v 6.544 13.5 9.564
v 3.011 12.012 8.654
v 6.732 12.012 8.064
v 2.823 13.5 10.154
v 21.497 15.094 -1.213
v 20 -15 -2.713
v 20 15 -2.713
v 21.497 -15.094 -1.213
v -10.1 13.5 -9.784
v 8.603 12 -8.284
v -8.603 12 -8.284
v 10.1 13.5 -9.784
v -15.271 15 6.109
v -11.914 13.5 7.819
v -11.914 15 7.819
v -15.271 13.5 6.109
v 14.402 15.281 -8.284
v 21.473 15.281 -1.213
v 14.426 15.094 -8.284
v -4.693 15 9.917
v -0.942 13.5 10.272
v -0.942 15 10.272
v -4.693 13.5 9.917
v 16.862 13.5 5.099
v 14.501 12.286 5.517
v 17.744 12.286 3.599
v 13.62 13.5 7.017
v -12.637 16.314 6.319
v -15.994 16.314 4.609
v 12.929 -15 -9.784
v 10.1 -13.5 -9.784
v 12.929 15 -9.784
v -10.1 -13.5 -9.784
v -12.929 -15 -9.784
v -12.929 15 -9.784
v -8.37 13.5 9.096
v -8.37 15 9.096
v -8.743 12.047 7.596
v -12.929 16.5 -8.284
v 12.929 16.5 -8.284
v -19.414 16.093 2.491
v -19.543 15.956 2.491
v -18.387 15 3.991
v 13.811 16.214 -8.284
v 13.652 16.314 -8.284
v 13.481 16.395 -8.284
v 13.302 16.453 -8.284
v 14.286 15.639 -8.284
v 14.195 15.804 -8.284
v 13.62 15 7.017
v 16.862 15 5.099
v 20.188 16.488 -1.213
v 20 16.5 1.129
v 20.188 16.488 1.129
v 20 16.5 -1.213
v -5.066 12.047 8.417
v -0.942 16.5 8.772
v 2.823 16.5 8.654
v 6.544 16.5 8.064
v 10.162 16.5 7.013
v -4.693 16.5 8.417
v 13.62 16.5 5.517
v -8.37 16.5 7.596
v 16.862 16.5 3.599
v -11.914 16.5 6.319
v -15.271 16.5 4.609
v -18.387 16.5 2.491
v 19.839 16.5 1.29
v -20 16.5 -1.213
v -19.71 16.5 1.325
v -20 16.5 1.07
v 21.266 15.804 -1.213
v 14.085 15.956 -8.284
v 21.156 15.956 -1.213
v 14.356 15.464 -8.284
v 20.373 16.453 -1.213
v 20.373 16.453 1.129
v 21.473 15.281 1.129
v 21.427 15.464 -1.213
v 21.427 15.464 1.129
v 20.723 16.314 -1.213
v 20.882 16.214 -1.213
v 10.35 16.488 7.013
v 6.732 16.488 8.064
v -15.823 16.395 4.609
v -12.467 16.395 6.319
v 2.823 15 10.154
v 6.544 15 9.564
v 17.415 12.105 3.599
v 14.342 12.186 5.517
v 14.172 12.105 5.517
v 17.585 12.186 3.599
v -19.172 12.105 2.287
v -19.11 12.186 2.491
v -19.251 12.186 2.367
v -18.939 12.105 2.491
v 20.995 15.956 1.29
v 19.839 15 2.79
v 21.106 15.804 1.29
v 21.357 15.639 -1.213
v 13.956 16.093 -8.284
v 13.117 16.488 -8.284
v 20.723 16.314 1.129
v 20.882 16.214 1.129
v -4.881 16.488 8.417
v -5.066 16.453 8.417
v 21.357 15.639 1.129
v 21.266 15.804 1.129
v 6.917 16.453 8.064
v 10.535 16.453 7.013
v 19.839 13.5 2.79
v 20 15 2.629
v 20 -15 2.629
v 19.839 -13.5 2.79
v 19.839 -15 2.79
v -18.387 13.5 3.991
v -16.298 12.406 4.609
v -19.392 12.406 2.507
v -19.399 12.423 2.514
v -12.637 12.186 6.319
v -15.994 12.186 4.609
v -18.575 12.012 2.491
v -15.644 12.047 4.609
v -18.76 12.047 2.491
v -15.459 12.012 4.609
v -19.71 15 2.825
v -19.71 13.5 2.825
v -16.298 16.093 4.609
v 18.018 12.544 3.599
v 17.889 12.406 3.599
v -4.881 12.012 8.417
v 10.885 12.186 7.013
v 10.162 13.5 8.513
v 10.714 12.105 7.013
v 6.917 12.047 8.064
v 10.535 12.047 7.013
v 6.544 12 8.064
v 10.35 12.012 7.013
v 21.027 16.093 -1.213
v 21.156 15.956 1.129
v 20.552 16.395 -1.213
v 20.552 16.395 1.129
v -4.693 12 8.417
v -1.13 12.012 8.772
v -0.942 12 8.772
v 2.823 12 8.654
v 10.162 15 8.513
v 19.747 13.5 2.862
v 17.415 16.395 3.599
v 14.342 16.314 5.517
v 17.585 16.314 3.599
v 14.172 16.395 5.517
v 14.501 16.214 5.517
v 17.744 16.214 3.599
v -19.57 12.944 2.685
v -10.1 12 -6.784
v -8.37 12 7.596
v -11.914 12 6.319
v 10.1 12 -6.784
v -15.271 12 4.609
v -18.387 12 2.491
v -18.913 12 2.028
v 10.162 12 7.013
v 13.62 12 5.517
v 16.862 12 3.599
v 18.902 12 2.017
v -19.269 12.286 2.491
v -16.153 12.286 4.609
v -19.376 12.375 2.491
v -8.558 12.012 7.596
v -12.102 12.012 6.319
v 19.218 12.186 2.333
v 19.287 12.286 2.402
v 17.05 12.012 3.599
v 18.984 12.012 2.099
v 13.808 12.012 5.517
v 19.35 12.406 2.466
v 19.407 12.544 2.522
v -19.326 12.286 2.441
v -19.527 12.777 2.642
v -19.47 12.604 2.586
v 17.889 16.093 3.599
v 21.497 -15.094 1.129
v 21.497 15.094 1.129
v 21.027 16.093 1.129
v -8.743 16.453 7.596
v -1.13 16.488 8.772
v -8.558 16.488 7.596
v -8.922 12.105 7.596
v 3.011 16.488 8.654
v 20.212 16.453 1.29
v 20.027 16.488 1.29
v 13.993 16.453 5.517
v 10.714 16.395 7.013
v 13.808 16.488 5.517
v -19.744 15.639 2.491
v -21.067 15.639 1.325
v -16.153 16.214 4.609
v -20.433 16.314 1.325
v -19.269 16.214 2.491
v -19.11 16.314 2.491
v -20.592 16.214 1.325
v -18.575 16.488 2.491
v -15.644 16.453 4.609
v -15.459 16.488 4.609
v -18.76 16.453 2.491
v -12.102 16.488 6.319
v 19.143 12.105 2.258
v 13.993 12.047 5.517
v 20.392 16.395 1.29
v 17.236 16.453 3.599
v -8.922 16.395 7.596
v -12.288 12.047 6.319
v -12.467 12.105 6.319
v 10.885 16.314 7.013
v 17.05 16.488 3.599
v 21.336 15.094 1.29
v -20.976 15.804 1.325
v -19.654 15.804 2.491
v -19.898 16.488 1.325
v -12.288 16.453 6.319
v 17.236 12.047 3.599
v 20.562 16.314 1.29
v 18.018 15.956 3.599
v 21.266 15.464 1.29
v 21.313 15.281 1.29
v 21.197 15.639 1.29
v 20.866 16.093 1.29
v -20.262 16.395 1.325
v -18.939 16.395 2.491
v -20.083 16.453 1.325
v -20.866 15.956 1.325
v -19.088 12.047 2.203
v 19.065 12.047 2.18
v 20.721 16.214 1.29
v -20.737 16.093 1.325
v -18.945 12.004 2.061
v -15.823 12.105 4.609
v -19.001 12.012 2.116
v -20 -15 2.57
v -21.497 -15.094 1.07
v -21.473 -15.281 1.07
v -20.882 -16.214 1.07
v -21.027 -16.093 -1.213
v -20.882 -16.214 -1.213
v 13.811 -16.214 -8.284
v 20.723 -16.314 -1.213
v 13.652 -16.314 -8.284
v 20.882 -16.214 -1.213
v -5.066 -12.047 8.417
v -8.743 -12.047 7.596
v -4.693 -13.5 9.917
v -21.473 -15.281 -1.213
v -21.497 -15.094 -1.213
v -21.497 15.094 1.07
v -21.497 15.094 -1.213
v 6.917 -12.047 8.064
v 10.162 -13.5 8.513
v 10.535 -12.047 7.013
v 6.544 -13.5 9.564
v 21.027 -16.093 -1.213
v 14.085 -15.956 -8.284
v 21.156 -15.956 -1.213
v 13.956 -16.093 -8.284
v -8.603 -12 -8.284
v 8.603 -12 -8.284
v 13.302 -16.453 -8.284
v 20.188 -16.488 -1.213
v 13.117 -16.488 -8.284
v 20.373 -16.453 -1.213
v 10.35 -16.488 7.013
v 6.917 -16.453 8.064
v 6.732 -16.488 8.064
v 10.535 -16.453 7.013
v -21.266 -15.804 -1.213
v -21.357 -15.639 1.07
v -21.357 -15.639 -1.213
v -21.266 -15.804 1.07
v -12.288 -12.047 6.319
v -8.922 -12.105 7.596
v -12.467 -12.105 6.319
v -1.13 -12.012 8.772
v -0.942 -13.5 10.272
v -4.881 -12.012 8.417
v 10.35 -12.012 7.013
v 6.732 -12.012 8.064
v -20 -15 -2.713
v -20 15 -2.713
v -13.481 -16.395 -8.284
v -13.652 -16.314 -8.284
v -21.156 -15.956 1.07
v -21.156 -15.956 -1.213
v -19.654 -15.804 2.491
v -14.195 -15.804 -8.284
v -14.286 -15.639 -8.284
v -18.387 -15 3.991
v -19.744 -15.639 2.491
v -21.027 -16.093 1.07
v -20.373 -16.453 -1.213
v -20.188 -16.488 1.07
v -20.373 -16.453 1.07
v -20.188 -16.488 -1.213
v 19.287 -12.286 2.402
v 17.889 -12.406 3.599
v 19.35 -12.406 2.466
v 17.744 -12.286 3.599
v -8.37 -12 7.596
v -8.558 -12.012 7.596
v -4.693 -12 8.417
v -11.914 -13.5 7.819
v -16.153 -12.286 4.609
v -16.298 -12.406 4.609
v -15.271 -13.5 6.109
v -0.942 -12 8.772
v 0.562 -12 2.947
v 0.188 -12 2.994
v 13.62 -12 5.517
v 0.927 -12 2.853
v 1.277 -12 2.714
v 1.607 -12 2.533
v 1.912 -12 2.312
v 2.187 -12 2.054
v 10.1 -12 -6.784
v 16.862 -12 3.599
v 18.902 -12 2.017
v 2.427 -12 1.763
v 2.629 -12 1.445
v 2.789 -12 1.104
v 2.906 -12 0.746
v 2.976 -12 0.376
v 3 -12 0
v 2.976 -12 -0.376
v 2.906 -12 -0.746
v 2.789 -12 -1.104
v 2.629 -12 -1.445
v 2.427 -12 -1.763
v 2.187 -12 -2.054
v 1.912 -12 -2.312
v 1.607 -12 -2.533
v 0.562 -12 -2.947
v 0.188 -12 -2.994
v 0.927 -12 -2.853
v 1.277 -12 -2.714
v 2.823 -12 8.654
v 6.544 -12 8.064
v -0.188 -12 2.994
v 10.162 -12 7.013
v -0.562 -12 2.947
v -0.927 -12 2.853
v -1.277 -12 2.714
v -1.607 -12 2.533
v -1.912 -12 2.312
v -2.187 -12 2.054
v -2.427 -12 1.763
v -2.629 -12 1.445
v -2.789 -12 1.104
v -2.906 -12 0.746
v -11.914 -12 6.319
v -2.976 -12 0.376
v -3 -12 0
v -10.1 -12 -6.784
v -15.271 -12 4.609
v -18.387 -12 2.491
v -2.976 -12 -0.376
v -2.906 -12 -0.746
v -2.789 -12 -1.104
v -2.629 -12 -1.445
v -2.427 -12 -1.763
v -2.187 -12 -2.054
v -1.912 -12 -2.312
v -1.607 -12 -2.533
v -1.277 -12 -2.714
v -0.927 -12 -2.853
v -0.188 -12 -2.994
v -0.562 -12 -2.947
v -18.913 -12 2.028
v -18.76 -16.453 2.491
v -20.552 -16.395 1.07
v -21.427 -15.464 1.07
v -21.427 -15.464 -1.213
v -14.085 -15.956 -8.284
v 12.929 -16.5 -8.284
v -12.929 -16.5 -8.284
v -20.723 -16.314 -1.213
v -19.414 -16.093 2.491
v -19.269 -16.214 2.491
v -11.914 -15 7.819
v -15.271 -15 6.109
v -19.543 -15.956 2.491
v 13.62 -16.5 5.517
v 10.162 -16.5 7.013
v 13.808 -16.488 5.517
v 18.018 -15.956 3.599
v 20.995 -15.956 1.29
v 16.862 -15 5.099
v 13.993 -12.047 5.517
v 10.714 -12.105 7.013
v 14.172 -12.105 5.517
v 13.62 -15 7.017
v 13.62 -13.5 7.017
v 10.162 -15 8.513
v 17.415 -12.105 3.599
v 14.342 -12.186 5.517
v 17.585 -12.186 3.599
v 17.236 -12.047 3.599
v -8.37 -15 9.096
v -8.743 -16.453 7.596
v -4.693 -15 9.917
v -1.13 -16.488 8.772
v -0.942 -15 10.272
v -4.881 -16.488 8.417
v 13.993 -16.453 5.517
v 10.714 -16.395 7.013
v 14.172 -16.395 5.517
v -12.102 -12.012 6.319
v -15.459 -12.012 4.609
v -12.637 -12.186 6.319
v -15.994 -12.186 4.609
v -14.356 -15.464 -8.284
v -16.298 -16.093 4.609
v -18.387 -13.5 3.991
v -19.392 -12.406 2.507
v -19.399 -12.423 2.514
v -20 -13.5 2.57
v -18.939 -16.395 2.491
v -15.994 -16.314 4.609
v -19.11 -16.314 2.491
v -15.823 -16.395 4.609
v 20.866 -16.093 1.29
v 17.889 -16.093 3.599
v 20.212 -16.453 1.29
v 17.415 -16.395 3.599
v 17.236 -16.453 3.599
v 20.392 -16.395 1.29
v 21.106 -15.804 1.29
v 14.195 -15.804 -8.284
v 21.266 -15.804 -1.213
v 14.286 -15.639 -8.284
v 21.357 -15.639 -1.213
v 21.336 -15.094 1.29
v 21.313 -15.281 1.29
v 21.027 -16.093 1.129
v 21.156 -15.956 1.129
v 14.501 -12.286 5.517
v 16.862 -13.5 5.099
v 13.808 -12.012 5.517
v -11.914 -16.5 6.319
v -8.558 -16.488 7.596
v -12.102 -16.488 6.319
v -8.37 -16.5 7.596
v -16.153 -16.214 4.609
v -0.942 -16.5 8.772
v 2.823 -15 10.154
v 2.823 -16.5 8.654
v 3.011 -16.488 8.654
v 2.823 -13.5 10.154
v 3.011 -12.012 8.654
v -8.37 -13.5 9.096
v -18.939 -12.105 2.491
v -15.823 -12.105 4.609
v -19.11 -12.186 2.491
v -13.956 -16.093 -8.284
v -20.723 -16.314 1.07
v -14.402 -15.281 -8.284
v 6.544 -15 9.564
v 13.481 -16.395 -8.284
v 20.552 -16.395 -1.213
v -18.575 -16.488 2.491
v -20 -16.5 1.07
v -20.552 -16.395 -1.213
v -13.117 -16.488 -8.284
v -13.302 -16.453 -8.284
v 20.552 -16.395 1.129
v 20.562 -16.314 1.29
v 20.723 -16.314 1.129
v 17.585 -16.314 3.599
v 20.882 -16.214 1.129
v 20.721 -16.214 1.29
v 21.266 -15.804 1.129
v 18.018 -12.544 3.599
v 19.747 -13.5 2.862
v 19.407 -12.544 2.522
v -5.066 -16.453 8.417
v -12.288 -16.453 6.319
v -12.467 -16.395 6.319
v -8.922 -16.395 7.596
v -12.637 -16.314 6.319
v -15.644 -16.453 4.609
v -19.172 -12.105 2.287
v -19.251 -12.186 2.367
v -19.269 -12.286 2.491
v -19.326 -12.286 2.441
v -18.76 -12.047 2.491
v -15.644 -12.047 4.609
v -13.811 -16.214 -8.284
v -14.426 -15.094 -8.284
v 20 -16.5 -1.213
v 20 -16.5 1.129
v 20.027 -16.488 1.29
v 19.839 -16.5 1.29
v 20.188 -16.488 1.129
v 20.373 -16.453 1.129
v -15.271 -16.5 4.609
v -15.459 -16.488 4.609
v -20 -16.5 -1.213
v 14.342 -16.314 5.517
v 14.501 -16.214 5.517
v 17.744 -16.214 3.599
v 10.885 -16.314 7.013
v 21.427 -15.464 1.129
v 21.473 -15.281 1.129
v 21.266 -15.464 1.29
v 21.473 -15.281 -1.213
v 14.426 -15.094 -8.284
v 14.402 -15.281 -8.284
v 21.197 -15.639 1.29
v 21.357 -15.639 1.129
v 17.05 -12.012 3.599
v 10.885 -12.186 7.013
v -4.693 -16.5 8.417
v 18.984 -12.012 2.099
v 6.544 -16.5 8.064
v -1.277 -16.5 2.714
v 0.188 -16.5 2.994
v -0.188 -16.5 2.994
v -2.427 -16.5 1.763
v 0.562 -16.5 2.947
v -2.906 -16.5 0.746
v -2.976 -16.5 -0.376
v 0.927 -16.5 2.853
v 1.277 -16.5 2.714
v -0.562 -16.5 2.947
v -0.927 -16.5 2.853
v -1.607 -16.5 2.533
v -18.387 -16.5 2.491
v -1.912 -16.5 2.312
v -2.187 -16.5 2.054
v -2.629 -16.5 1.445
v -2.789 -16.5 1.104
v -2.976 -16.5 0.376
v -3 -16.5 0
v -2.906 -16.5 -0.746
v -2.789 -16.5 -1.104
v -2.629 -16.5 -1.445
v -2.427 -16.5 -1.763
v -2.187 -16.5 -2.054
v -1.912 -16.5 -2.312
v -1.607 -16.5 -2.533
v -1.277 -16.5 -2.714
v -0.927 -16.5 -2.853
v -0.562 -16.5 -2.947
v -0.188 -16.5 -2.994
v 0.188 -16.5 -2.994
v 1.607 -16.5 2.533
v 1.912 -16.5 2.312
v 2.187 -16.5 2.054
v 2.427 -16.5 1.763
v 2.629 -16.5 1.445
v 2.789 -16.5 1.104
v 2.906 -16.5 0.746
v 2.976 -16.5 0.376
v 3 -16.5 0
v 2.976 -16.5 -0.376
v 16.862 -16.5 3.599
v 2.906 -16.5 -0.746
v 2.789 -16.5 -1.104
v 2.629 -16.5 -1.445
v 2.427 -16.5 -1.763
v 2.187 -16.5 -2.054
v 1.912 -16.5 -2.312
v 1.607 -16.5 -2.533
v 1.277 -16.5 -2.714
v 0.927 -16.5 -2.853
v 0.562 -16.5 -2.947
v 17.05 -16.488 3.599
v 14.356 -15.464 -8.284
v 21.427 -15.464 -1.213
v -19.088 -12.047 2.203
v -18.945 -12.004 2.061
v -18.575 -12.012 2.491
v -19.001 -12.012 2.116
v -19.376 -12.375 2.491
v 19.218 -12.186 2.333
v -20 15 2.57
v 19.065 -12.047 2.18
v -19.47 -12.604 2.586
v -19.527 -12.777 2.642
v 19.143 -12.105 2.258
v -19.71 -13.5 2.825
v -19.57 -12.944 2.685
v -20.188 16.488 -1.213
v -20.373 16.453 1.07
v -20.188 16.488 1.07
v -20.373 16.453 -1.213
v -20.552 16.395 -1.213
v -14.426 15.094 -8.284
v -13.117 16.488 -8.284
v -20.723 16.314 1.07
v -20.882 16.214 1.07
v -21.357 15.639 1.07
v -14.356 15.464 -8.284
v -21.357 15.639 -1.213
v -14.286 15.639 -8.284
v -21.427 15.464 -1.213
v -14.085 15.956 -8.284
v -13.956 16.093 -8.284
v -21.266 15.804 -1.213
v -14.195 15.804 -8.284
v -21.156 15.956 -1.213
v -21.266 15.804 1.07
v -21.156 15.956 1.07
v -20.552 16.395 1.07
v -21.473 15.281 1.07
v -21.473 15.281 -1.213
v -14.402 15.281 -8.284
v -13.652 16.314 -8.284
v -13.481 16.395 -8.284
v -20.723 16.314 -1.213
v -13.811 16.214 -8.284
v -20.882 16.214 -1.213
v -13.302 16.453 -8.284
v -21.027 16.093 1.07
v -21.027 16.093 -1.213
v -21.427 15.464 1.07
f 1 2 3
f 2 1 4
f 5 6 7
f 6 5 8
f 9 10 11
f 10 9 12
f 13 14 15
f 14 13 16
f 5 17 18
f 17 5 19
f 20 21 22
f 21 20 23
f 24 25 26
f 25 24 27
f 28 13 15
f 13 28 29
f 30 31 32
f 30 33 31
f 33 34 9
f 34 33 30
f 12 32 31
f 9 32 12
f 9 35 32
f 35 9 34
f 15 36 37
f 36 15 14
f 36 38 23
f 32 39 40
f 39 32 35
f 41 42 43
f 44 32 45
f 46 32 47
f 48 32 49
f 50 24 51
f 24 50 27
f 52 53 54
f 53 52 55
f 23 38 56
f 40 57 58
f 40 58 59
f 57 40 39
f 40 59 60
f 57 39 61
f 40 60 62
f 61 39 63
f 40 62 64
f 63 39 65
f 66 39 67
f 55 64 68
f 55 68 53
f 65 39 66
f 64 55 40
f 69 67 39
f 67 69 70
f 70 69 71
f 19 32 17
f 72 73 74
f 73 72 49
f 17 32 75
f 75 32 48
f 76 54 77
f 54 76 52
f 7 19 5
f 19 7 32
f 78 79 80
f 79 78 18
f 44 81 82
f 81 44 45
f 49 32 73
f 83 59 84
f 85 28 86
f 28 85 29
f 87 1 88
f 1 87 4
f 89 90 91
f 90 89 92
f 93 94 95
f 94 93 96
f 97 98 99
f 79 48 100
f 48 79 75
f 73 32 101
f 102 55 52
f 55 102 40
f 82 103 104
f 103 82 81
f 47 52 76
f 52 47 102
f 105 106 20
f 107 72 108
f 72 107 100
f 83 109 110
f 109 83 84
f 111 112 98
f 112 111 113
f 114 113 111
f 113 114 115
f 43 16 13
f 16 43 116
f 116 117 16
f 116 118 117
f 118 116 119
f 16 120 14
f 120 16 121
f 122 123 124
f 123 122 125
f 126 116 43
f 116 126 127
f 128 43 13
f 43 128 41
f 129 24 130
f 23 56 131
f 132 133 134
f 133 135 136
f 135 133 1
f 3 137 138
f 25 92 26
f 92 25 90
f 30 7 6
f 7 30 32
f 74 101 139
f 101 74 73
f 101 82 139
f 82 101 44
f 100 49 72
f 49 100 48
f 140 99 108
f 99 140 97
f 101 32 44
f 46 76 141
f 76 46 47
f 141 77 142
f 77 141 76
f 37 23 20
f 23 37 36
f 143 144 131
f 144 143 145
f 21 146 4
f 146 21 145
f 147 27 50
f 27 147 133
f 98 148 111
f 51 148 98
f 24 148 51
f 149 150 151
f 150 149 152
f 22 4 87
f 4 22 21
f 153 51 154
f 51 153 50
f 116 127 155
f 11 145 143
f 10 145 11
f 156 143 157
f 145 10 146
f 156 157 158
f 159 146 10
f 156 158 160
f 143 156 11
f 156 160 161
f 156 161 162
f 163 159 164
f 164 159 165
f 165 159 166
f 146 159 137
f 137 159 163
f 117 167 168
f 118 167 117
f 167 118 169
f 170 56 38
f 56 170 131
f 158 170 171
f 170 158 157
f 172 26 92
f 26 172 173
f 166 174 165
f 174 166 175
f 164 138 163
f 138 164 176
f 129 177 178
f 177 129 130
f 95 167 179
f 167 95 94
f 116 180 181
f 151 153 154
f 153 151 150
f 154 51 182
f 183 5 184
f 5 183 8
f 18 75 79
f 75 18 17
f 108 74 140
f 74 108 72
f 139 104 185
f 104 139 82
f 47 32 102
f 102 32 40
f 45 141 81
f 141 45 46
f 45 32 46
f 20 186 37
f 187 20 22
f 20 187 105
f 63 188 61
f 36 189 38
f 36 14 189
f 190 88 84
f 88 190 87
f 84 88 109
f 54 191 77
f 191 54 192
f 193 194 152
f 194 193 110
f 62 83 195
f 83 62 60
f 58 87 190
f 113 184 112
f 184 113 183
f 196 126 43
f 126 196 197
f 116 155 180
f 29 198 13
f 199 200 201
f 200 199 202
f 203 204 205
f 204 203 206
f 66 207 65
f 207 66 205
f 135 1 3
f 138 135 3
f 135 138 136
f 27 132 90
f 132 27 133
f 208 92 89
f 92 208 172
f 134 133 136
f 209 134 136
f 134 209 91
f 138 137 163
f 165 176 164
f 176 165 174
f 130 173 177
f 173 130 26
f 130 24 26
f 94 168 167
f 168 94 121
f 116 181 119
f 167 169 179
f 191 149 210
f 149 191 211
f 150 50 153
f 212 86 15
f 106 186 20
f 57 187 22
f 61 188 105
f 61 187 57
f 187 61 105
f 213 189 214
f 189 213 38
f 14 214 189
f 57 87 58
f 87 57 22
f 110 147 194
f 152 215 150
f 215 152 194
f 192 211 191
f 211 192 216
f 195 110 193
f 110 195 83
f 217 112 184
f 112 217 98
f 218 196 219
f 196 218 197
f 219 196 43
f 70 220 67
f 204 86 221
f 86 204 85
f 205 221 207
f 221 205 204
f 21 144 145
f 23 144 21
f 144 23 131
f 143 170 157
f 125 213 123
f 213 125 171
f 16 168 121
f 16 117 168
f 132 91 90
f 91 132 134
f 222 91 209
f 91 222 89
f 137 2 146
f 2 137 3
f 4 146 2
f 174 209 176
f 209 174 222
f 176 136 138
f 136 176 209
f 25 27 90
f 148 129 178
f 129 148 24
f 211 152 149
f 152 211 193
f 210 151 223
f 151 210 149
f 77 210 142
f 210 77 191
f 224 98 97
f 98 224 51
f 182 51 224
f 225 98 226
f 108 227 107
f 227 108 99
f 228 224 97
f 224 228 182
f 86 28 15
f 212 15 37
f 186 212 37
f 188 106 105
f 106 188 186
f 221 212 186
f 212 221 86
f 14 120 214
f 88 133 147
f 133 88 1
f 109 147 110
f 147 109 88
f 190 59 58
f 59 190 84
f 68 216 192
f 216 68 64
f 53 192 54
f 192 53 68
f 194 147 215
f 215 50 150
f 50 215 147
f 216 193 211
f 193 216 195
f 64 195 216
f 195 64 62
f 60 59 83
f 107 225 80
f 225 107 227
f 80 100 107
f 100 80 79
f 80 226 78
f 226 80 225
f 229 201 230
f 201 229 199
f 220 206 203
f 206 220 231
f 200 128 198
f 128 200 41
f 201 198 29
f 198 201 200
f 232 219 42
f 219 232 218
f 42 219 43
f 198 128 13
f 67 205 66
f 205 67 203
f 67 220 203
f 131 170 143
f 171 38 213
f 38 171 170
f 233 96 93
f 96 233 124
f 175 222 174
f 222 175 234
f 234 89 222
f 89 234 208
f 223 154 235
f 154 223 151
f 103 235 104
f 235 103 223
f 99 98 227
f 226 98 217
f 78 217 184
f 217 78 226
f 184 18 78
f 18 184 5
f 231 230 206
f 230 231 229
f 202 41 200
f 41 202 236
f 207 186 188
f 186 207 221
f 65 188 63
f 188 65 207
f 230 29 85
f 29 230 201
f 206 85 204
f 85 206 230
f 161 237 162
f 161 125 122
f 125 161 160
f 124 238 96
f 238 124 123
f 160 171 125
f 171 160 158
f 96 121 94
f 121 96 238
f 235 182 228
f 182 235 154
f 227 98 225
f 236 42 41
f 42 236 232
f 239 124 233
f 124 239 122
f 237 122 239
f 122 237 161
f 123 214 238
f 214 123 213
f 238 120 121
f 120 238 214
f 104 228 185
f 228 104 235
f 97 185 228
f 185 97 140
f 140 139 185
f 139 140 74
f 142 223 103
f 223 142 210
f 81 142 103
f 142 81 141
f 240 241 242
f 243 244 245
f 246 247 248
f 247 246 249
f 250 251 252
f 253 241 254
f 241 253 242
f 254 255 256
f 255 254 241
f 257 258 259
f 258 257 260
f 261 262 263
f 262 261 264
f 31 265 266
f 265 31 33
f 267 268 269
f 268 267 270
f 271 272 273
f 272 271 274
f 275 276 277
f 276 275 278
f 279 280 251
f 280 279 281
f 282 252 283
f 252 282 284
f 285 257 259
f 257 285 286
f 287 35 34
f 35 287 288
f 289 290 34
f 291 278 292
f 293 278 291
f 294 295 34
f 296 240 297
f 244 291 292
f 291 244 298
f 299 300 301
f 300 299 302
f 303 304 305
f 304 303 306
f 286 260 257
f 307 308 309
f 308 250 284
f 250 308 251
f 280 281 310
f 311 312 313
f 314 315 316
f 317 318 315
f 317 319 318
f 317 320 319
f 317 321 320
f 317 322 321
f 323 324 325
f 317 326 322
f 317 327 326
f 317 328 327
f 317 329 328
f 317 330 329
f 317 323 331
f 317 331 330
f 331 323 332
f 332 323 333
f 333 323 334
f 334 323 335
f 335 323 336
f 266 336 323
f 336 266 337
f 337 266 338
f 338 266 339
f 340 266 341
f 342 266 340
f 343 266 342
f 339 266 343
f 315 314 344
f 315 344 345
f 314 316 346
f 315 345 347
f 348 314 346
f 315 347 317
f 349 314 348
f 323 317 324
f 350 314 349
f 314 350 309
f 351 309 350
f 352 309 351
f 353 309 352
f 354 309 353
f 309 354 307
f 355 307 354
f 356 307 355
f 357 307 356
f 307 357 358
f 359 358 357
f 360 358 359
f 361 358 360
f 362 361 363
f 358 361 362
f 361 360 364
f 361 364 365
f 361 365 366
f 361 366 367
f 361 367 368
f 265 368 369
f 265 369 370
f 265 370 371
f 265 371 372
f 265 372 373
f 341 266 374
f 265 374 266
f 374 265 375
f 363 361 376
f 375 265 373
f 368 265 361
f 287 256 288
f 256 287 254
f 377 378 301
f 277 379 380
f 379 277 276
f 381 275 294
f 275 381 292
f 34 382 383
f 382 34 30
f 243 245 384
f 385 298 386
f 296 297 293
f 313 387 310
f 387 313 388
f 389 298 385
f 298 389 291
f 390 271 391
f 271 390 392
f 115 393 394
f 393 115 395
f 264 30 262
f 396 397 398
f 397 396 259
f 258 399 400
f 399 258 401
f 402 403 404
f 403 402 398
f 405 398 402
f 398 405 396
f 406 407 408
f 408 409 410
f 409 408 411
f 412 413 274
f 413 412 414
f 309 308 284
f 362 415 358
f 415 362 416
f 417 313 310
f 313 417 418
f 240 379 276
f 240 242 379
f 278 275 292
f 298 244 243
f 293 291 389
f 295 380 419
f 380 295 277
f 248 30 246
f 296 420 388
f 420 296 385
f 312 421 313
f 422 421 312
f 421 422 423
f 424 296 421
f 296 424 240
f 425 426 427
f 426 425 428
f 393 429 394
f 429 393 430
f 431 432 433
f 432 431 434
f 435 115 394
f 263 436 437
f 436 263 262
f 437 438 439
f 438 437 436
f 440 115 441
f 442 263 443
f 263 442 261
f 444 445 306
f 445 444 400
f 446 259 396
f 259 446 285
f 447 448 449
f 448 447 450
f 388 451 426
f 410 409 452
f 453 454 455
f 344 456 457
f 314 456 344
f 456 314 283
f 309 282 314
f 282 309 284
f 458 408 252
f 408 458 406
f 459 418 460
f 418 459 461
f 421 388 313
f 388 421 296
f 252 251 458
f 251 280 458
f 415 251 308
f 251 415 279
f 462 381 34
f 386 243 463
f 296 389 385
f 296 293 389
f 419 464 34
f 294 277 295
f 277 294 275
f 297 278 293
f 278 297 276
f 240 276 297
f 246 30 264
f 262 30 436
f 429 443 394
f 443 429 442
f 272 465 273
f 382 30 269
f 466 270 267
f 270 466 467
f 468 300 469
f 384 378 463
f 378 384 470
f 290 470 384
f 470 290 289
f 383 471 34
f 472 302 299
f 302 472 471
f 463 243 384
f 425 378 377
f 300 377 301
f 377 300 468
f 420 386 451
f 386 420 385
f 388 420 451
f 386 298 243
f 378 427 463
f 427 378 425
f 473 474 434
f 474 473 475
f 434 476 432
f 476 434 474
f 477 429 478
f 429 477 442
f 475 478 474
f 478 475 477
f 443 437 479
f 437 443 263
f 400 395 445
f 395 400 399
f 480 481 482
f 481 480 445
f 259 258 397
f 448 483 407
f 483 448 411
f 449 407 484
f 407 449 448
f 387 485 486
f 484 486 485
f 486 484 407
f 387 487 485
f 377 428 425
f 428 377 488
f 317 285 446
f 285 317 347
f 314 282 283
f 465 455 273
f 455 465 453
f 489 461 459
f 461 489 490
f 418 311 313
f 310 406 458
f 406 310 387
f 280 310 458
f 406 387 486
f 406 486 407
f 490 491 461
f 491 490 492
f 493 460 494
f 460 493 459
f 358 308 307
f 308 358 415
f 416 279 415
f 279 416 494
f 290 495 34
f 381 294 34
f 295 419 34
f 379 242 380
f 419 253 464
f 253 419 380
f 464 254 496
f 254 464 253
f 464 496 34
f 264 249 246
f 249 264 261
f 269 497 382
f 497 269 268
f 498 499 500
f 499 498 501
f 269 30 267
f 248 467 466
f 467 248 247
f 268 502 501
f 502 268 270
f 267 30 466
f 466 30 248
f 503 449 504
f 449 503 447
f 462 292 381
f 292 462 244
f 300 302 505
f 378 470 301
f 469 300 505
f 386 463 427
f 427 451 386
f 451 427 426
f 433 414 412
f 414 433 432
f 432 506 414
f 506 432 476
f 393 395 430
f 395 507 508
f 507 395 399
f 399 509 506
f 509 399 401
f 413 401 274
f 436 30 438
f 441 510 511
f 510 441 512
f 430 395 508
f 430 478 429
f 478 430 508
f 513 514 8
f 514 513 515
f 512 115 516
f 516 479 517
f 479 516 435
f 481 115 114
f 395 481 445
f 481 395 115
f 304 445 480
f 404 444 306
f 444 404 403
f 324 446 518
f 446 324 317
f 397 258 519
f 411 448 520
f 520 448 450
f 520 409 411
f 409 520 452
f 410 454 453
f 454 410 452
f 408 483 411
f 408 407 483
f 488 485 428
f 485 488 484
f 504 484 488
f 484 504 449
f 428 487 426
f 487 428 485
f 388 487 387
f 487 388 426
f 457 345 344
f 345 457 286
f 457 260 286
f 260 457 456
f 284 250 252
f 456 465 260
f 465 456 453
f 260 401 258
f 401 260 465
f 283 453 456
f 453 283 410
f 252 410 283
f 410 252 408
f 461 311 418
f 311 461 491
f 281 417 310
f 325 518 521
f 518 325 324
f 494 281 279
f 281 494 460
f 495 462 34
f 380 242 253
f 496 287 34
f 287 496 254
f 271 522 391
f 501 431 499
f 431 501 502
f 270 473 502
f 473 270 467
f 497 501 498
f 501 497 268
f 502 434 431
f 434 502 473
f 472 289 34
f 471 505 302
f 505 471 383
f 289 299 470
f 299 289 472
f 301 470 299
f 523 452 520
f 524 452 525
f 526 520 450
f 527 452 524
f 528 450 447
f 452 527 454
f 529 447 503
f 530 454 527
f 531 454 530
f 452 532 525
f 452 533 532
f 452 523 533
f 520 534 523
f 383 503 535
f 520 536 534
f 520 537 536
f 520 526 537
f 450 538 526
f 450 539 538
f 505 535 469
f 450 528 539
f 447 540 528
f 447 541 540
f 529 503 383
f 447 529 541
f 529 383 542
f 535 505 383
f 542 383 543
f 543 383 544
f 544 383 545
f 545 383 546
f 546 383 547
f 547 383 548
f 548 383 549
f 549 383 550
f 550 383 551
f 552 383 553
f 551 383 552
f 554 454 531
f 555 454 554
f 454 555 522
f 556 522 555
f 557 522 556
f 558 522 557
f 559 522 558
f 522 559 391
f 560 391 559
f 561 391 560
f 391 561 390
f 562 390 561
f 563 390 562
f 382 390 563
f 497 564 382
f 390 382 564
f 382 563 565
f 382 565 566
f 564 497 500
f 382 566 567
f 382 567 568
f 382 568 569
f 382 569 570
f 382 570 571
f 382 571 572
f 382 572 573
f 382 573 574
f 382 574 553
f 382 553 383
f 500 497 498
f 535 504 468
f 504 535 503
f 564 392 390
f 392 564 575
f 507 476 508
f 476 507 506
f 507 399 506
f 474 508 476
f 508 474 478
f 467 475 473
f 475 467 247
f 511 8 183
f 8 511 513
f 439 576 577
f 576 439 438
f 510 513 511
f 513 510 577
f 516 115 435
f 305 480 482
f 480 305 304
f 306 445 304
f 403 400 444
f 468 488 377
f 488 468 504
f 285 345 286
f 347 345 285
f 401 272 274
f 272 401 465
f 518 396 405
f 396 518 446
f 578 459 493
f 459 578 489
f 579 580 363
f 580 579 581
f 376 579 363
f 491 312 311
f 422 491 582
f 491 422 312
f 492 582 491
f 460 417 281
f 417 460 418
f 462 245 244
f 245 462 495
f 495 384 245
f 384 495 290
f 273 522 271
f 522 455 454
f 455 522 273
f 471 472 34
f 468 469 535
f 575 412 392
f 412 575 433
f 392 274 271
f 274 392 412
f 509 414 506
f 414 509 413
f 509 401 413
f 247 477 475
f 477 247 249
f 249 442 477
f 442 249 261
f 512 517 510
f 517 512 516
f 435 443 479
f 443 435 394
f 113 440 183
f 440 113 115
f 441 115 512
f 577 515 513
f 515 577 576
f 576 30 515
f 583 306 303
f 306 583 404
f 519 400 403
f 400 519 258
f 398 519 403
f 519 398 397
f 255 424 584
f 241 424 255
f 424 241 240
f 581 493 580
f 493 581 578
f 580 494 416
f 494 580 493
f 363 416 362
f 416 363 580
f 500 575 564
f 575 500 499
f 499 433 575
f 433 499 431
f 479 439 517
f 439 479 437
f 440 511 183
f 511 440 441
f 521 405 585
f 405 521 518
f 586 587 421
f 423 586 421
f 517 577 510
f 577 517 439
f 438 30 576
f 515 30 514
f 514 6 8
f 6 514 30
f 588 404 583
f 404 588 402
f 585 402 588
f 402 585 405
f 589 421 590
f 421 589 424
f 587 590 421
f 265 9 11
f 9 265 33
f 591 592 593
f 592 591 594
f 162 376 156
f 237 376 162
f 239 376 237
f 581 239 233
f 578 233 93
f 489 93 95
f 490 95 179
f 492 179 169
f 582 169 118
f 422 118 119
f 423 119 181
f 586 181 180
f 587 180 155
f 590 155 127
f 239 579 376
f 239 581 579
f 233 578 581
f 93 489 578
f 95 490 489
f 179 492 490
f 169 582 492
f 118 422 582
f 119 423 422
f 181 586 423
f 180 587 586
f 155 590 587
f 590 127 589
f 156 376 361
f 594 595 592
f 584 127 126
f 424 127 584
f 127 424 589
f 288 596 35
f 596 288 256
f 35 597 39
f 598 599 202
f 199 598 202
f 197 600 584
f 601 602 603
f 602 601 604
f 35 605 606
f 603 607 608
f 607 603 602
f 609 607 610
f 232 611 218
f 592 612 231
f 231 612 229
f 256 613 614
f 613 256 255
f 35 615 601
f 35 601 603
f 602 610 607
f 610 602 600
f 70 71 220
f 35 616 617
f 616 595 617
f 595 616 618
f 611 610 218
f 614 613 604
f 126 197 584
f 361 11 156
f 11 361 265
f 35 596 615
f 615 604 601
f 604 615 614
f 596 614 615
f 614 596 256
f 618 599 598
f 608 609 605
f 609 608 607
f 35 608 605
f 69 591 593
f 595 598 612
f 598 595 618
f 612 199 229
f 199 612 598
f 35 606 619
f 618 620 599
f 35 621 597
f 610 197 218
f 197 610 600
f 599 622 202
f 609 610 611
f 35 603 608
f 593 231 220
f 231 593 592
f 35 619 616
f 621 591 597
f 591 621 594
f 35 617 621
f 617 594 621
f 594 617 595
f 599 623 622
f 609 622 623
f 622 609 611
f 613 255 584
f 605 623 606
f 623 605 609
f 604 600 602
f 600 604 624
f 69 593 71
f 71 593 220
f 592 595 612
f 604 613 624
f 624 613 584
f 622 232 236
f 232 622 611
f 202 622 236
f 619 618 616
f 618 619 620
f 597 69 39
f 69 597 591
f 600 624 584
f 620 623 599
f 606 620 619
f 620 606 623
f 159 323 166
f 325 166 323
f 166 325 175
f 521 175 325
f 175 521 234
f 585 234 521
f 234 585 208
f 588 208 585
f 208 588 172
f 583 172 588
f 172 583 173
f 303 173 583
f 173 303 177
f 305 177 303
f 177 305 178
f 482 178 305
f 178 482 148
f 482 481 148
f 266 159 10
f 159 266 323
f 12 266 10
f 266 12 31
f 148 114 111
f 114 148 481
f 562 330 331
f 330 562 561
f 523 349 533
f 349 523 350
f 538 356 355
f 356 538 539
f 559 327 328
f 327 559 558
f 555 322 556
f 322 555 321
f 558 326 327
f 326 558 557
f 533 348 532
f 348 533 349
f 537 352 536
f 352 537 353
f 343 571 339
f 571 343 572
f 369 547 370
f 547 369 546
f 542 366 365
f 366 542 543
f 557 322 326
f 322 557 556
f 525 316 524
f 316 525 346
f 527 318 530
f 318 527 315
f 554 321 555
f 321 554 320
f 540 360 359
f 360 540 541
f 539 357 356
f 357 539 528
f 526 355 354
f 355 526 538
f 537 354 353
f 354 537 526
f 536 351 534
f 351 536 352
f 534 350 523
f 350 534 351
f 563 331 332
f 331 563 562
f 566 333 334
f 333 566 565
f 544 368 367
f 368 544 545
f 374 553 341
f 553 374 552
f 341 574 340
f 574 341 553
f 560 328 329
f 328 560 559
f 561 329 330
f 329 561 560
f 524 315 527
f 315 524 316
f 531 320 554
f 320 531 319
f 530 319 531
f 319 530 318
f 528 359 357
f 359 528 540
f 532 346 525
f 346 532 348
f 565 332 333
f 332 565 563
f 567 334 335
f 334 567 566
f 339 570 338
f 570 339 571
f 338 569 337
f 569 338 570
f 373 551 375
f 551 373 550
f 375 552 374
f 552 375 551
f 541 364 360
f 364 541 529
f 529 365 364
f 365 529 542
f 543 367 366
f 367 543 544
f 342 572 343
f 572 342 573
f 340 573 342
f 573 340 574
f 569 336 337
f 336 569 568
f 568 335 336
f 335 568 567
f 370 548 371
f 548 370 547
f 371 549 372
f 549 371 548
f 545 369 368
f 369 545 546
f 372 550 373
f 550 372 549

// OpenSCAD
// meant to grab the corner of a laptop with a length of paracord.

// meant to be used in multiples and tensioned towards the laptop's 
// center of gravity

$fn = 50;
difference(){
    rotate([-90, 0, 0]) rotate([0, 0, 45]) minkowski(){
        difference(){
            //make quarter cylinder
            intersection(){
                cube([30, 30, 40], center=true);
                translate([15, 15, 0]) cylinder(30, 30, 30, center=true);
                //trim off corners
                translate([5, 5, 0]) rotate([0, 0, 45]) cube([40, 40, 50], center=true);
            }
            //main cutout for corner body of laptop
            translate([-2, -2, 0]) cube([30, 30, 27], center=true);
            //lop of corner of cylinder
            translate([20, 20, 0]) rotate([0, 0, 45]) cube([40, 40, 40], center=true);
            //first chamfer
            translate([10, 10, 0]) cube([20, 20, 27], center=true);
            //inner chamfer
            translate([5, 5, 0]) rotate([0, 0, 45]) cube([15, 15, 27], center=true);
        }
        // minkowski buck: adds horizontal chamfers and vertical fillets
        rotate([0, 0, 45]) rotate([0, 90, 0]) union(){
            translate([0, 0, .75]) cylinder(1.5, 1.5, 0, center=true);
            translate([0, 0, -.75]) cylinder(1.5, 0, 1.5, center=true);
        }
    }
    // 6mm hole for paracord
    rotate([90, 0, 0]) cylinder(40, 3, 3);
}
